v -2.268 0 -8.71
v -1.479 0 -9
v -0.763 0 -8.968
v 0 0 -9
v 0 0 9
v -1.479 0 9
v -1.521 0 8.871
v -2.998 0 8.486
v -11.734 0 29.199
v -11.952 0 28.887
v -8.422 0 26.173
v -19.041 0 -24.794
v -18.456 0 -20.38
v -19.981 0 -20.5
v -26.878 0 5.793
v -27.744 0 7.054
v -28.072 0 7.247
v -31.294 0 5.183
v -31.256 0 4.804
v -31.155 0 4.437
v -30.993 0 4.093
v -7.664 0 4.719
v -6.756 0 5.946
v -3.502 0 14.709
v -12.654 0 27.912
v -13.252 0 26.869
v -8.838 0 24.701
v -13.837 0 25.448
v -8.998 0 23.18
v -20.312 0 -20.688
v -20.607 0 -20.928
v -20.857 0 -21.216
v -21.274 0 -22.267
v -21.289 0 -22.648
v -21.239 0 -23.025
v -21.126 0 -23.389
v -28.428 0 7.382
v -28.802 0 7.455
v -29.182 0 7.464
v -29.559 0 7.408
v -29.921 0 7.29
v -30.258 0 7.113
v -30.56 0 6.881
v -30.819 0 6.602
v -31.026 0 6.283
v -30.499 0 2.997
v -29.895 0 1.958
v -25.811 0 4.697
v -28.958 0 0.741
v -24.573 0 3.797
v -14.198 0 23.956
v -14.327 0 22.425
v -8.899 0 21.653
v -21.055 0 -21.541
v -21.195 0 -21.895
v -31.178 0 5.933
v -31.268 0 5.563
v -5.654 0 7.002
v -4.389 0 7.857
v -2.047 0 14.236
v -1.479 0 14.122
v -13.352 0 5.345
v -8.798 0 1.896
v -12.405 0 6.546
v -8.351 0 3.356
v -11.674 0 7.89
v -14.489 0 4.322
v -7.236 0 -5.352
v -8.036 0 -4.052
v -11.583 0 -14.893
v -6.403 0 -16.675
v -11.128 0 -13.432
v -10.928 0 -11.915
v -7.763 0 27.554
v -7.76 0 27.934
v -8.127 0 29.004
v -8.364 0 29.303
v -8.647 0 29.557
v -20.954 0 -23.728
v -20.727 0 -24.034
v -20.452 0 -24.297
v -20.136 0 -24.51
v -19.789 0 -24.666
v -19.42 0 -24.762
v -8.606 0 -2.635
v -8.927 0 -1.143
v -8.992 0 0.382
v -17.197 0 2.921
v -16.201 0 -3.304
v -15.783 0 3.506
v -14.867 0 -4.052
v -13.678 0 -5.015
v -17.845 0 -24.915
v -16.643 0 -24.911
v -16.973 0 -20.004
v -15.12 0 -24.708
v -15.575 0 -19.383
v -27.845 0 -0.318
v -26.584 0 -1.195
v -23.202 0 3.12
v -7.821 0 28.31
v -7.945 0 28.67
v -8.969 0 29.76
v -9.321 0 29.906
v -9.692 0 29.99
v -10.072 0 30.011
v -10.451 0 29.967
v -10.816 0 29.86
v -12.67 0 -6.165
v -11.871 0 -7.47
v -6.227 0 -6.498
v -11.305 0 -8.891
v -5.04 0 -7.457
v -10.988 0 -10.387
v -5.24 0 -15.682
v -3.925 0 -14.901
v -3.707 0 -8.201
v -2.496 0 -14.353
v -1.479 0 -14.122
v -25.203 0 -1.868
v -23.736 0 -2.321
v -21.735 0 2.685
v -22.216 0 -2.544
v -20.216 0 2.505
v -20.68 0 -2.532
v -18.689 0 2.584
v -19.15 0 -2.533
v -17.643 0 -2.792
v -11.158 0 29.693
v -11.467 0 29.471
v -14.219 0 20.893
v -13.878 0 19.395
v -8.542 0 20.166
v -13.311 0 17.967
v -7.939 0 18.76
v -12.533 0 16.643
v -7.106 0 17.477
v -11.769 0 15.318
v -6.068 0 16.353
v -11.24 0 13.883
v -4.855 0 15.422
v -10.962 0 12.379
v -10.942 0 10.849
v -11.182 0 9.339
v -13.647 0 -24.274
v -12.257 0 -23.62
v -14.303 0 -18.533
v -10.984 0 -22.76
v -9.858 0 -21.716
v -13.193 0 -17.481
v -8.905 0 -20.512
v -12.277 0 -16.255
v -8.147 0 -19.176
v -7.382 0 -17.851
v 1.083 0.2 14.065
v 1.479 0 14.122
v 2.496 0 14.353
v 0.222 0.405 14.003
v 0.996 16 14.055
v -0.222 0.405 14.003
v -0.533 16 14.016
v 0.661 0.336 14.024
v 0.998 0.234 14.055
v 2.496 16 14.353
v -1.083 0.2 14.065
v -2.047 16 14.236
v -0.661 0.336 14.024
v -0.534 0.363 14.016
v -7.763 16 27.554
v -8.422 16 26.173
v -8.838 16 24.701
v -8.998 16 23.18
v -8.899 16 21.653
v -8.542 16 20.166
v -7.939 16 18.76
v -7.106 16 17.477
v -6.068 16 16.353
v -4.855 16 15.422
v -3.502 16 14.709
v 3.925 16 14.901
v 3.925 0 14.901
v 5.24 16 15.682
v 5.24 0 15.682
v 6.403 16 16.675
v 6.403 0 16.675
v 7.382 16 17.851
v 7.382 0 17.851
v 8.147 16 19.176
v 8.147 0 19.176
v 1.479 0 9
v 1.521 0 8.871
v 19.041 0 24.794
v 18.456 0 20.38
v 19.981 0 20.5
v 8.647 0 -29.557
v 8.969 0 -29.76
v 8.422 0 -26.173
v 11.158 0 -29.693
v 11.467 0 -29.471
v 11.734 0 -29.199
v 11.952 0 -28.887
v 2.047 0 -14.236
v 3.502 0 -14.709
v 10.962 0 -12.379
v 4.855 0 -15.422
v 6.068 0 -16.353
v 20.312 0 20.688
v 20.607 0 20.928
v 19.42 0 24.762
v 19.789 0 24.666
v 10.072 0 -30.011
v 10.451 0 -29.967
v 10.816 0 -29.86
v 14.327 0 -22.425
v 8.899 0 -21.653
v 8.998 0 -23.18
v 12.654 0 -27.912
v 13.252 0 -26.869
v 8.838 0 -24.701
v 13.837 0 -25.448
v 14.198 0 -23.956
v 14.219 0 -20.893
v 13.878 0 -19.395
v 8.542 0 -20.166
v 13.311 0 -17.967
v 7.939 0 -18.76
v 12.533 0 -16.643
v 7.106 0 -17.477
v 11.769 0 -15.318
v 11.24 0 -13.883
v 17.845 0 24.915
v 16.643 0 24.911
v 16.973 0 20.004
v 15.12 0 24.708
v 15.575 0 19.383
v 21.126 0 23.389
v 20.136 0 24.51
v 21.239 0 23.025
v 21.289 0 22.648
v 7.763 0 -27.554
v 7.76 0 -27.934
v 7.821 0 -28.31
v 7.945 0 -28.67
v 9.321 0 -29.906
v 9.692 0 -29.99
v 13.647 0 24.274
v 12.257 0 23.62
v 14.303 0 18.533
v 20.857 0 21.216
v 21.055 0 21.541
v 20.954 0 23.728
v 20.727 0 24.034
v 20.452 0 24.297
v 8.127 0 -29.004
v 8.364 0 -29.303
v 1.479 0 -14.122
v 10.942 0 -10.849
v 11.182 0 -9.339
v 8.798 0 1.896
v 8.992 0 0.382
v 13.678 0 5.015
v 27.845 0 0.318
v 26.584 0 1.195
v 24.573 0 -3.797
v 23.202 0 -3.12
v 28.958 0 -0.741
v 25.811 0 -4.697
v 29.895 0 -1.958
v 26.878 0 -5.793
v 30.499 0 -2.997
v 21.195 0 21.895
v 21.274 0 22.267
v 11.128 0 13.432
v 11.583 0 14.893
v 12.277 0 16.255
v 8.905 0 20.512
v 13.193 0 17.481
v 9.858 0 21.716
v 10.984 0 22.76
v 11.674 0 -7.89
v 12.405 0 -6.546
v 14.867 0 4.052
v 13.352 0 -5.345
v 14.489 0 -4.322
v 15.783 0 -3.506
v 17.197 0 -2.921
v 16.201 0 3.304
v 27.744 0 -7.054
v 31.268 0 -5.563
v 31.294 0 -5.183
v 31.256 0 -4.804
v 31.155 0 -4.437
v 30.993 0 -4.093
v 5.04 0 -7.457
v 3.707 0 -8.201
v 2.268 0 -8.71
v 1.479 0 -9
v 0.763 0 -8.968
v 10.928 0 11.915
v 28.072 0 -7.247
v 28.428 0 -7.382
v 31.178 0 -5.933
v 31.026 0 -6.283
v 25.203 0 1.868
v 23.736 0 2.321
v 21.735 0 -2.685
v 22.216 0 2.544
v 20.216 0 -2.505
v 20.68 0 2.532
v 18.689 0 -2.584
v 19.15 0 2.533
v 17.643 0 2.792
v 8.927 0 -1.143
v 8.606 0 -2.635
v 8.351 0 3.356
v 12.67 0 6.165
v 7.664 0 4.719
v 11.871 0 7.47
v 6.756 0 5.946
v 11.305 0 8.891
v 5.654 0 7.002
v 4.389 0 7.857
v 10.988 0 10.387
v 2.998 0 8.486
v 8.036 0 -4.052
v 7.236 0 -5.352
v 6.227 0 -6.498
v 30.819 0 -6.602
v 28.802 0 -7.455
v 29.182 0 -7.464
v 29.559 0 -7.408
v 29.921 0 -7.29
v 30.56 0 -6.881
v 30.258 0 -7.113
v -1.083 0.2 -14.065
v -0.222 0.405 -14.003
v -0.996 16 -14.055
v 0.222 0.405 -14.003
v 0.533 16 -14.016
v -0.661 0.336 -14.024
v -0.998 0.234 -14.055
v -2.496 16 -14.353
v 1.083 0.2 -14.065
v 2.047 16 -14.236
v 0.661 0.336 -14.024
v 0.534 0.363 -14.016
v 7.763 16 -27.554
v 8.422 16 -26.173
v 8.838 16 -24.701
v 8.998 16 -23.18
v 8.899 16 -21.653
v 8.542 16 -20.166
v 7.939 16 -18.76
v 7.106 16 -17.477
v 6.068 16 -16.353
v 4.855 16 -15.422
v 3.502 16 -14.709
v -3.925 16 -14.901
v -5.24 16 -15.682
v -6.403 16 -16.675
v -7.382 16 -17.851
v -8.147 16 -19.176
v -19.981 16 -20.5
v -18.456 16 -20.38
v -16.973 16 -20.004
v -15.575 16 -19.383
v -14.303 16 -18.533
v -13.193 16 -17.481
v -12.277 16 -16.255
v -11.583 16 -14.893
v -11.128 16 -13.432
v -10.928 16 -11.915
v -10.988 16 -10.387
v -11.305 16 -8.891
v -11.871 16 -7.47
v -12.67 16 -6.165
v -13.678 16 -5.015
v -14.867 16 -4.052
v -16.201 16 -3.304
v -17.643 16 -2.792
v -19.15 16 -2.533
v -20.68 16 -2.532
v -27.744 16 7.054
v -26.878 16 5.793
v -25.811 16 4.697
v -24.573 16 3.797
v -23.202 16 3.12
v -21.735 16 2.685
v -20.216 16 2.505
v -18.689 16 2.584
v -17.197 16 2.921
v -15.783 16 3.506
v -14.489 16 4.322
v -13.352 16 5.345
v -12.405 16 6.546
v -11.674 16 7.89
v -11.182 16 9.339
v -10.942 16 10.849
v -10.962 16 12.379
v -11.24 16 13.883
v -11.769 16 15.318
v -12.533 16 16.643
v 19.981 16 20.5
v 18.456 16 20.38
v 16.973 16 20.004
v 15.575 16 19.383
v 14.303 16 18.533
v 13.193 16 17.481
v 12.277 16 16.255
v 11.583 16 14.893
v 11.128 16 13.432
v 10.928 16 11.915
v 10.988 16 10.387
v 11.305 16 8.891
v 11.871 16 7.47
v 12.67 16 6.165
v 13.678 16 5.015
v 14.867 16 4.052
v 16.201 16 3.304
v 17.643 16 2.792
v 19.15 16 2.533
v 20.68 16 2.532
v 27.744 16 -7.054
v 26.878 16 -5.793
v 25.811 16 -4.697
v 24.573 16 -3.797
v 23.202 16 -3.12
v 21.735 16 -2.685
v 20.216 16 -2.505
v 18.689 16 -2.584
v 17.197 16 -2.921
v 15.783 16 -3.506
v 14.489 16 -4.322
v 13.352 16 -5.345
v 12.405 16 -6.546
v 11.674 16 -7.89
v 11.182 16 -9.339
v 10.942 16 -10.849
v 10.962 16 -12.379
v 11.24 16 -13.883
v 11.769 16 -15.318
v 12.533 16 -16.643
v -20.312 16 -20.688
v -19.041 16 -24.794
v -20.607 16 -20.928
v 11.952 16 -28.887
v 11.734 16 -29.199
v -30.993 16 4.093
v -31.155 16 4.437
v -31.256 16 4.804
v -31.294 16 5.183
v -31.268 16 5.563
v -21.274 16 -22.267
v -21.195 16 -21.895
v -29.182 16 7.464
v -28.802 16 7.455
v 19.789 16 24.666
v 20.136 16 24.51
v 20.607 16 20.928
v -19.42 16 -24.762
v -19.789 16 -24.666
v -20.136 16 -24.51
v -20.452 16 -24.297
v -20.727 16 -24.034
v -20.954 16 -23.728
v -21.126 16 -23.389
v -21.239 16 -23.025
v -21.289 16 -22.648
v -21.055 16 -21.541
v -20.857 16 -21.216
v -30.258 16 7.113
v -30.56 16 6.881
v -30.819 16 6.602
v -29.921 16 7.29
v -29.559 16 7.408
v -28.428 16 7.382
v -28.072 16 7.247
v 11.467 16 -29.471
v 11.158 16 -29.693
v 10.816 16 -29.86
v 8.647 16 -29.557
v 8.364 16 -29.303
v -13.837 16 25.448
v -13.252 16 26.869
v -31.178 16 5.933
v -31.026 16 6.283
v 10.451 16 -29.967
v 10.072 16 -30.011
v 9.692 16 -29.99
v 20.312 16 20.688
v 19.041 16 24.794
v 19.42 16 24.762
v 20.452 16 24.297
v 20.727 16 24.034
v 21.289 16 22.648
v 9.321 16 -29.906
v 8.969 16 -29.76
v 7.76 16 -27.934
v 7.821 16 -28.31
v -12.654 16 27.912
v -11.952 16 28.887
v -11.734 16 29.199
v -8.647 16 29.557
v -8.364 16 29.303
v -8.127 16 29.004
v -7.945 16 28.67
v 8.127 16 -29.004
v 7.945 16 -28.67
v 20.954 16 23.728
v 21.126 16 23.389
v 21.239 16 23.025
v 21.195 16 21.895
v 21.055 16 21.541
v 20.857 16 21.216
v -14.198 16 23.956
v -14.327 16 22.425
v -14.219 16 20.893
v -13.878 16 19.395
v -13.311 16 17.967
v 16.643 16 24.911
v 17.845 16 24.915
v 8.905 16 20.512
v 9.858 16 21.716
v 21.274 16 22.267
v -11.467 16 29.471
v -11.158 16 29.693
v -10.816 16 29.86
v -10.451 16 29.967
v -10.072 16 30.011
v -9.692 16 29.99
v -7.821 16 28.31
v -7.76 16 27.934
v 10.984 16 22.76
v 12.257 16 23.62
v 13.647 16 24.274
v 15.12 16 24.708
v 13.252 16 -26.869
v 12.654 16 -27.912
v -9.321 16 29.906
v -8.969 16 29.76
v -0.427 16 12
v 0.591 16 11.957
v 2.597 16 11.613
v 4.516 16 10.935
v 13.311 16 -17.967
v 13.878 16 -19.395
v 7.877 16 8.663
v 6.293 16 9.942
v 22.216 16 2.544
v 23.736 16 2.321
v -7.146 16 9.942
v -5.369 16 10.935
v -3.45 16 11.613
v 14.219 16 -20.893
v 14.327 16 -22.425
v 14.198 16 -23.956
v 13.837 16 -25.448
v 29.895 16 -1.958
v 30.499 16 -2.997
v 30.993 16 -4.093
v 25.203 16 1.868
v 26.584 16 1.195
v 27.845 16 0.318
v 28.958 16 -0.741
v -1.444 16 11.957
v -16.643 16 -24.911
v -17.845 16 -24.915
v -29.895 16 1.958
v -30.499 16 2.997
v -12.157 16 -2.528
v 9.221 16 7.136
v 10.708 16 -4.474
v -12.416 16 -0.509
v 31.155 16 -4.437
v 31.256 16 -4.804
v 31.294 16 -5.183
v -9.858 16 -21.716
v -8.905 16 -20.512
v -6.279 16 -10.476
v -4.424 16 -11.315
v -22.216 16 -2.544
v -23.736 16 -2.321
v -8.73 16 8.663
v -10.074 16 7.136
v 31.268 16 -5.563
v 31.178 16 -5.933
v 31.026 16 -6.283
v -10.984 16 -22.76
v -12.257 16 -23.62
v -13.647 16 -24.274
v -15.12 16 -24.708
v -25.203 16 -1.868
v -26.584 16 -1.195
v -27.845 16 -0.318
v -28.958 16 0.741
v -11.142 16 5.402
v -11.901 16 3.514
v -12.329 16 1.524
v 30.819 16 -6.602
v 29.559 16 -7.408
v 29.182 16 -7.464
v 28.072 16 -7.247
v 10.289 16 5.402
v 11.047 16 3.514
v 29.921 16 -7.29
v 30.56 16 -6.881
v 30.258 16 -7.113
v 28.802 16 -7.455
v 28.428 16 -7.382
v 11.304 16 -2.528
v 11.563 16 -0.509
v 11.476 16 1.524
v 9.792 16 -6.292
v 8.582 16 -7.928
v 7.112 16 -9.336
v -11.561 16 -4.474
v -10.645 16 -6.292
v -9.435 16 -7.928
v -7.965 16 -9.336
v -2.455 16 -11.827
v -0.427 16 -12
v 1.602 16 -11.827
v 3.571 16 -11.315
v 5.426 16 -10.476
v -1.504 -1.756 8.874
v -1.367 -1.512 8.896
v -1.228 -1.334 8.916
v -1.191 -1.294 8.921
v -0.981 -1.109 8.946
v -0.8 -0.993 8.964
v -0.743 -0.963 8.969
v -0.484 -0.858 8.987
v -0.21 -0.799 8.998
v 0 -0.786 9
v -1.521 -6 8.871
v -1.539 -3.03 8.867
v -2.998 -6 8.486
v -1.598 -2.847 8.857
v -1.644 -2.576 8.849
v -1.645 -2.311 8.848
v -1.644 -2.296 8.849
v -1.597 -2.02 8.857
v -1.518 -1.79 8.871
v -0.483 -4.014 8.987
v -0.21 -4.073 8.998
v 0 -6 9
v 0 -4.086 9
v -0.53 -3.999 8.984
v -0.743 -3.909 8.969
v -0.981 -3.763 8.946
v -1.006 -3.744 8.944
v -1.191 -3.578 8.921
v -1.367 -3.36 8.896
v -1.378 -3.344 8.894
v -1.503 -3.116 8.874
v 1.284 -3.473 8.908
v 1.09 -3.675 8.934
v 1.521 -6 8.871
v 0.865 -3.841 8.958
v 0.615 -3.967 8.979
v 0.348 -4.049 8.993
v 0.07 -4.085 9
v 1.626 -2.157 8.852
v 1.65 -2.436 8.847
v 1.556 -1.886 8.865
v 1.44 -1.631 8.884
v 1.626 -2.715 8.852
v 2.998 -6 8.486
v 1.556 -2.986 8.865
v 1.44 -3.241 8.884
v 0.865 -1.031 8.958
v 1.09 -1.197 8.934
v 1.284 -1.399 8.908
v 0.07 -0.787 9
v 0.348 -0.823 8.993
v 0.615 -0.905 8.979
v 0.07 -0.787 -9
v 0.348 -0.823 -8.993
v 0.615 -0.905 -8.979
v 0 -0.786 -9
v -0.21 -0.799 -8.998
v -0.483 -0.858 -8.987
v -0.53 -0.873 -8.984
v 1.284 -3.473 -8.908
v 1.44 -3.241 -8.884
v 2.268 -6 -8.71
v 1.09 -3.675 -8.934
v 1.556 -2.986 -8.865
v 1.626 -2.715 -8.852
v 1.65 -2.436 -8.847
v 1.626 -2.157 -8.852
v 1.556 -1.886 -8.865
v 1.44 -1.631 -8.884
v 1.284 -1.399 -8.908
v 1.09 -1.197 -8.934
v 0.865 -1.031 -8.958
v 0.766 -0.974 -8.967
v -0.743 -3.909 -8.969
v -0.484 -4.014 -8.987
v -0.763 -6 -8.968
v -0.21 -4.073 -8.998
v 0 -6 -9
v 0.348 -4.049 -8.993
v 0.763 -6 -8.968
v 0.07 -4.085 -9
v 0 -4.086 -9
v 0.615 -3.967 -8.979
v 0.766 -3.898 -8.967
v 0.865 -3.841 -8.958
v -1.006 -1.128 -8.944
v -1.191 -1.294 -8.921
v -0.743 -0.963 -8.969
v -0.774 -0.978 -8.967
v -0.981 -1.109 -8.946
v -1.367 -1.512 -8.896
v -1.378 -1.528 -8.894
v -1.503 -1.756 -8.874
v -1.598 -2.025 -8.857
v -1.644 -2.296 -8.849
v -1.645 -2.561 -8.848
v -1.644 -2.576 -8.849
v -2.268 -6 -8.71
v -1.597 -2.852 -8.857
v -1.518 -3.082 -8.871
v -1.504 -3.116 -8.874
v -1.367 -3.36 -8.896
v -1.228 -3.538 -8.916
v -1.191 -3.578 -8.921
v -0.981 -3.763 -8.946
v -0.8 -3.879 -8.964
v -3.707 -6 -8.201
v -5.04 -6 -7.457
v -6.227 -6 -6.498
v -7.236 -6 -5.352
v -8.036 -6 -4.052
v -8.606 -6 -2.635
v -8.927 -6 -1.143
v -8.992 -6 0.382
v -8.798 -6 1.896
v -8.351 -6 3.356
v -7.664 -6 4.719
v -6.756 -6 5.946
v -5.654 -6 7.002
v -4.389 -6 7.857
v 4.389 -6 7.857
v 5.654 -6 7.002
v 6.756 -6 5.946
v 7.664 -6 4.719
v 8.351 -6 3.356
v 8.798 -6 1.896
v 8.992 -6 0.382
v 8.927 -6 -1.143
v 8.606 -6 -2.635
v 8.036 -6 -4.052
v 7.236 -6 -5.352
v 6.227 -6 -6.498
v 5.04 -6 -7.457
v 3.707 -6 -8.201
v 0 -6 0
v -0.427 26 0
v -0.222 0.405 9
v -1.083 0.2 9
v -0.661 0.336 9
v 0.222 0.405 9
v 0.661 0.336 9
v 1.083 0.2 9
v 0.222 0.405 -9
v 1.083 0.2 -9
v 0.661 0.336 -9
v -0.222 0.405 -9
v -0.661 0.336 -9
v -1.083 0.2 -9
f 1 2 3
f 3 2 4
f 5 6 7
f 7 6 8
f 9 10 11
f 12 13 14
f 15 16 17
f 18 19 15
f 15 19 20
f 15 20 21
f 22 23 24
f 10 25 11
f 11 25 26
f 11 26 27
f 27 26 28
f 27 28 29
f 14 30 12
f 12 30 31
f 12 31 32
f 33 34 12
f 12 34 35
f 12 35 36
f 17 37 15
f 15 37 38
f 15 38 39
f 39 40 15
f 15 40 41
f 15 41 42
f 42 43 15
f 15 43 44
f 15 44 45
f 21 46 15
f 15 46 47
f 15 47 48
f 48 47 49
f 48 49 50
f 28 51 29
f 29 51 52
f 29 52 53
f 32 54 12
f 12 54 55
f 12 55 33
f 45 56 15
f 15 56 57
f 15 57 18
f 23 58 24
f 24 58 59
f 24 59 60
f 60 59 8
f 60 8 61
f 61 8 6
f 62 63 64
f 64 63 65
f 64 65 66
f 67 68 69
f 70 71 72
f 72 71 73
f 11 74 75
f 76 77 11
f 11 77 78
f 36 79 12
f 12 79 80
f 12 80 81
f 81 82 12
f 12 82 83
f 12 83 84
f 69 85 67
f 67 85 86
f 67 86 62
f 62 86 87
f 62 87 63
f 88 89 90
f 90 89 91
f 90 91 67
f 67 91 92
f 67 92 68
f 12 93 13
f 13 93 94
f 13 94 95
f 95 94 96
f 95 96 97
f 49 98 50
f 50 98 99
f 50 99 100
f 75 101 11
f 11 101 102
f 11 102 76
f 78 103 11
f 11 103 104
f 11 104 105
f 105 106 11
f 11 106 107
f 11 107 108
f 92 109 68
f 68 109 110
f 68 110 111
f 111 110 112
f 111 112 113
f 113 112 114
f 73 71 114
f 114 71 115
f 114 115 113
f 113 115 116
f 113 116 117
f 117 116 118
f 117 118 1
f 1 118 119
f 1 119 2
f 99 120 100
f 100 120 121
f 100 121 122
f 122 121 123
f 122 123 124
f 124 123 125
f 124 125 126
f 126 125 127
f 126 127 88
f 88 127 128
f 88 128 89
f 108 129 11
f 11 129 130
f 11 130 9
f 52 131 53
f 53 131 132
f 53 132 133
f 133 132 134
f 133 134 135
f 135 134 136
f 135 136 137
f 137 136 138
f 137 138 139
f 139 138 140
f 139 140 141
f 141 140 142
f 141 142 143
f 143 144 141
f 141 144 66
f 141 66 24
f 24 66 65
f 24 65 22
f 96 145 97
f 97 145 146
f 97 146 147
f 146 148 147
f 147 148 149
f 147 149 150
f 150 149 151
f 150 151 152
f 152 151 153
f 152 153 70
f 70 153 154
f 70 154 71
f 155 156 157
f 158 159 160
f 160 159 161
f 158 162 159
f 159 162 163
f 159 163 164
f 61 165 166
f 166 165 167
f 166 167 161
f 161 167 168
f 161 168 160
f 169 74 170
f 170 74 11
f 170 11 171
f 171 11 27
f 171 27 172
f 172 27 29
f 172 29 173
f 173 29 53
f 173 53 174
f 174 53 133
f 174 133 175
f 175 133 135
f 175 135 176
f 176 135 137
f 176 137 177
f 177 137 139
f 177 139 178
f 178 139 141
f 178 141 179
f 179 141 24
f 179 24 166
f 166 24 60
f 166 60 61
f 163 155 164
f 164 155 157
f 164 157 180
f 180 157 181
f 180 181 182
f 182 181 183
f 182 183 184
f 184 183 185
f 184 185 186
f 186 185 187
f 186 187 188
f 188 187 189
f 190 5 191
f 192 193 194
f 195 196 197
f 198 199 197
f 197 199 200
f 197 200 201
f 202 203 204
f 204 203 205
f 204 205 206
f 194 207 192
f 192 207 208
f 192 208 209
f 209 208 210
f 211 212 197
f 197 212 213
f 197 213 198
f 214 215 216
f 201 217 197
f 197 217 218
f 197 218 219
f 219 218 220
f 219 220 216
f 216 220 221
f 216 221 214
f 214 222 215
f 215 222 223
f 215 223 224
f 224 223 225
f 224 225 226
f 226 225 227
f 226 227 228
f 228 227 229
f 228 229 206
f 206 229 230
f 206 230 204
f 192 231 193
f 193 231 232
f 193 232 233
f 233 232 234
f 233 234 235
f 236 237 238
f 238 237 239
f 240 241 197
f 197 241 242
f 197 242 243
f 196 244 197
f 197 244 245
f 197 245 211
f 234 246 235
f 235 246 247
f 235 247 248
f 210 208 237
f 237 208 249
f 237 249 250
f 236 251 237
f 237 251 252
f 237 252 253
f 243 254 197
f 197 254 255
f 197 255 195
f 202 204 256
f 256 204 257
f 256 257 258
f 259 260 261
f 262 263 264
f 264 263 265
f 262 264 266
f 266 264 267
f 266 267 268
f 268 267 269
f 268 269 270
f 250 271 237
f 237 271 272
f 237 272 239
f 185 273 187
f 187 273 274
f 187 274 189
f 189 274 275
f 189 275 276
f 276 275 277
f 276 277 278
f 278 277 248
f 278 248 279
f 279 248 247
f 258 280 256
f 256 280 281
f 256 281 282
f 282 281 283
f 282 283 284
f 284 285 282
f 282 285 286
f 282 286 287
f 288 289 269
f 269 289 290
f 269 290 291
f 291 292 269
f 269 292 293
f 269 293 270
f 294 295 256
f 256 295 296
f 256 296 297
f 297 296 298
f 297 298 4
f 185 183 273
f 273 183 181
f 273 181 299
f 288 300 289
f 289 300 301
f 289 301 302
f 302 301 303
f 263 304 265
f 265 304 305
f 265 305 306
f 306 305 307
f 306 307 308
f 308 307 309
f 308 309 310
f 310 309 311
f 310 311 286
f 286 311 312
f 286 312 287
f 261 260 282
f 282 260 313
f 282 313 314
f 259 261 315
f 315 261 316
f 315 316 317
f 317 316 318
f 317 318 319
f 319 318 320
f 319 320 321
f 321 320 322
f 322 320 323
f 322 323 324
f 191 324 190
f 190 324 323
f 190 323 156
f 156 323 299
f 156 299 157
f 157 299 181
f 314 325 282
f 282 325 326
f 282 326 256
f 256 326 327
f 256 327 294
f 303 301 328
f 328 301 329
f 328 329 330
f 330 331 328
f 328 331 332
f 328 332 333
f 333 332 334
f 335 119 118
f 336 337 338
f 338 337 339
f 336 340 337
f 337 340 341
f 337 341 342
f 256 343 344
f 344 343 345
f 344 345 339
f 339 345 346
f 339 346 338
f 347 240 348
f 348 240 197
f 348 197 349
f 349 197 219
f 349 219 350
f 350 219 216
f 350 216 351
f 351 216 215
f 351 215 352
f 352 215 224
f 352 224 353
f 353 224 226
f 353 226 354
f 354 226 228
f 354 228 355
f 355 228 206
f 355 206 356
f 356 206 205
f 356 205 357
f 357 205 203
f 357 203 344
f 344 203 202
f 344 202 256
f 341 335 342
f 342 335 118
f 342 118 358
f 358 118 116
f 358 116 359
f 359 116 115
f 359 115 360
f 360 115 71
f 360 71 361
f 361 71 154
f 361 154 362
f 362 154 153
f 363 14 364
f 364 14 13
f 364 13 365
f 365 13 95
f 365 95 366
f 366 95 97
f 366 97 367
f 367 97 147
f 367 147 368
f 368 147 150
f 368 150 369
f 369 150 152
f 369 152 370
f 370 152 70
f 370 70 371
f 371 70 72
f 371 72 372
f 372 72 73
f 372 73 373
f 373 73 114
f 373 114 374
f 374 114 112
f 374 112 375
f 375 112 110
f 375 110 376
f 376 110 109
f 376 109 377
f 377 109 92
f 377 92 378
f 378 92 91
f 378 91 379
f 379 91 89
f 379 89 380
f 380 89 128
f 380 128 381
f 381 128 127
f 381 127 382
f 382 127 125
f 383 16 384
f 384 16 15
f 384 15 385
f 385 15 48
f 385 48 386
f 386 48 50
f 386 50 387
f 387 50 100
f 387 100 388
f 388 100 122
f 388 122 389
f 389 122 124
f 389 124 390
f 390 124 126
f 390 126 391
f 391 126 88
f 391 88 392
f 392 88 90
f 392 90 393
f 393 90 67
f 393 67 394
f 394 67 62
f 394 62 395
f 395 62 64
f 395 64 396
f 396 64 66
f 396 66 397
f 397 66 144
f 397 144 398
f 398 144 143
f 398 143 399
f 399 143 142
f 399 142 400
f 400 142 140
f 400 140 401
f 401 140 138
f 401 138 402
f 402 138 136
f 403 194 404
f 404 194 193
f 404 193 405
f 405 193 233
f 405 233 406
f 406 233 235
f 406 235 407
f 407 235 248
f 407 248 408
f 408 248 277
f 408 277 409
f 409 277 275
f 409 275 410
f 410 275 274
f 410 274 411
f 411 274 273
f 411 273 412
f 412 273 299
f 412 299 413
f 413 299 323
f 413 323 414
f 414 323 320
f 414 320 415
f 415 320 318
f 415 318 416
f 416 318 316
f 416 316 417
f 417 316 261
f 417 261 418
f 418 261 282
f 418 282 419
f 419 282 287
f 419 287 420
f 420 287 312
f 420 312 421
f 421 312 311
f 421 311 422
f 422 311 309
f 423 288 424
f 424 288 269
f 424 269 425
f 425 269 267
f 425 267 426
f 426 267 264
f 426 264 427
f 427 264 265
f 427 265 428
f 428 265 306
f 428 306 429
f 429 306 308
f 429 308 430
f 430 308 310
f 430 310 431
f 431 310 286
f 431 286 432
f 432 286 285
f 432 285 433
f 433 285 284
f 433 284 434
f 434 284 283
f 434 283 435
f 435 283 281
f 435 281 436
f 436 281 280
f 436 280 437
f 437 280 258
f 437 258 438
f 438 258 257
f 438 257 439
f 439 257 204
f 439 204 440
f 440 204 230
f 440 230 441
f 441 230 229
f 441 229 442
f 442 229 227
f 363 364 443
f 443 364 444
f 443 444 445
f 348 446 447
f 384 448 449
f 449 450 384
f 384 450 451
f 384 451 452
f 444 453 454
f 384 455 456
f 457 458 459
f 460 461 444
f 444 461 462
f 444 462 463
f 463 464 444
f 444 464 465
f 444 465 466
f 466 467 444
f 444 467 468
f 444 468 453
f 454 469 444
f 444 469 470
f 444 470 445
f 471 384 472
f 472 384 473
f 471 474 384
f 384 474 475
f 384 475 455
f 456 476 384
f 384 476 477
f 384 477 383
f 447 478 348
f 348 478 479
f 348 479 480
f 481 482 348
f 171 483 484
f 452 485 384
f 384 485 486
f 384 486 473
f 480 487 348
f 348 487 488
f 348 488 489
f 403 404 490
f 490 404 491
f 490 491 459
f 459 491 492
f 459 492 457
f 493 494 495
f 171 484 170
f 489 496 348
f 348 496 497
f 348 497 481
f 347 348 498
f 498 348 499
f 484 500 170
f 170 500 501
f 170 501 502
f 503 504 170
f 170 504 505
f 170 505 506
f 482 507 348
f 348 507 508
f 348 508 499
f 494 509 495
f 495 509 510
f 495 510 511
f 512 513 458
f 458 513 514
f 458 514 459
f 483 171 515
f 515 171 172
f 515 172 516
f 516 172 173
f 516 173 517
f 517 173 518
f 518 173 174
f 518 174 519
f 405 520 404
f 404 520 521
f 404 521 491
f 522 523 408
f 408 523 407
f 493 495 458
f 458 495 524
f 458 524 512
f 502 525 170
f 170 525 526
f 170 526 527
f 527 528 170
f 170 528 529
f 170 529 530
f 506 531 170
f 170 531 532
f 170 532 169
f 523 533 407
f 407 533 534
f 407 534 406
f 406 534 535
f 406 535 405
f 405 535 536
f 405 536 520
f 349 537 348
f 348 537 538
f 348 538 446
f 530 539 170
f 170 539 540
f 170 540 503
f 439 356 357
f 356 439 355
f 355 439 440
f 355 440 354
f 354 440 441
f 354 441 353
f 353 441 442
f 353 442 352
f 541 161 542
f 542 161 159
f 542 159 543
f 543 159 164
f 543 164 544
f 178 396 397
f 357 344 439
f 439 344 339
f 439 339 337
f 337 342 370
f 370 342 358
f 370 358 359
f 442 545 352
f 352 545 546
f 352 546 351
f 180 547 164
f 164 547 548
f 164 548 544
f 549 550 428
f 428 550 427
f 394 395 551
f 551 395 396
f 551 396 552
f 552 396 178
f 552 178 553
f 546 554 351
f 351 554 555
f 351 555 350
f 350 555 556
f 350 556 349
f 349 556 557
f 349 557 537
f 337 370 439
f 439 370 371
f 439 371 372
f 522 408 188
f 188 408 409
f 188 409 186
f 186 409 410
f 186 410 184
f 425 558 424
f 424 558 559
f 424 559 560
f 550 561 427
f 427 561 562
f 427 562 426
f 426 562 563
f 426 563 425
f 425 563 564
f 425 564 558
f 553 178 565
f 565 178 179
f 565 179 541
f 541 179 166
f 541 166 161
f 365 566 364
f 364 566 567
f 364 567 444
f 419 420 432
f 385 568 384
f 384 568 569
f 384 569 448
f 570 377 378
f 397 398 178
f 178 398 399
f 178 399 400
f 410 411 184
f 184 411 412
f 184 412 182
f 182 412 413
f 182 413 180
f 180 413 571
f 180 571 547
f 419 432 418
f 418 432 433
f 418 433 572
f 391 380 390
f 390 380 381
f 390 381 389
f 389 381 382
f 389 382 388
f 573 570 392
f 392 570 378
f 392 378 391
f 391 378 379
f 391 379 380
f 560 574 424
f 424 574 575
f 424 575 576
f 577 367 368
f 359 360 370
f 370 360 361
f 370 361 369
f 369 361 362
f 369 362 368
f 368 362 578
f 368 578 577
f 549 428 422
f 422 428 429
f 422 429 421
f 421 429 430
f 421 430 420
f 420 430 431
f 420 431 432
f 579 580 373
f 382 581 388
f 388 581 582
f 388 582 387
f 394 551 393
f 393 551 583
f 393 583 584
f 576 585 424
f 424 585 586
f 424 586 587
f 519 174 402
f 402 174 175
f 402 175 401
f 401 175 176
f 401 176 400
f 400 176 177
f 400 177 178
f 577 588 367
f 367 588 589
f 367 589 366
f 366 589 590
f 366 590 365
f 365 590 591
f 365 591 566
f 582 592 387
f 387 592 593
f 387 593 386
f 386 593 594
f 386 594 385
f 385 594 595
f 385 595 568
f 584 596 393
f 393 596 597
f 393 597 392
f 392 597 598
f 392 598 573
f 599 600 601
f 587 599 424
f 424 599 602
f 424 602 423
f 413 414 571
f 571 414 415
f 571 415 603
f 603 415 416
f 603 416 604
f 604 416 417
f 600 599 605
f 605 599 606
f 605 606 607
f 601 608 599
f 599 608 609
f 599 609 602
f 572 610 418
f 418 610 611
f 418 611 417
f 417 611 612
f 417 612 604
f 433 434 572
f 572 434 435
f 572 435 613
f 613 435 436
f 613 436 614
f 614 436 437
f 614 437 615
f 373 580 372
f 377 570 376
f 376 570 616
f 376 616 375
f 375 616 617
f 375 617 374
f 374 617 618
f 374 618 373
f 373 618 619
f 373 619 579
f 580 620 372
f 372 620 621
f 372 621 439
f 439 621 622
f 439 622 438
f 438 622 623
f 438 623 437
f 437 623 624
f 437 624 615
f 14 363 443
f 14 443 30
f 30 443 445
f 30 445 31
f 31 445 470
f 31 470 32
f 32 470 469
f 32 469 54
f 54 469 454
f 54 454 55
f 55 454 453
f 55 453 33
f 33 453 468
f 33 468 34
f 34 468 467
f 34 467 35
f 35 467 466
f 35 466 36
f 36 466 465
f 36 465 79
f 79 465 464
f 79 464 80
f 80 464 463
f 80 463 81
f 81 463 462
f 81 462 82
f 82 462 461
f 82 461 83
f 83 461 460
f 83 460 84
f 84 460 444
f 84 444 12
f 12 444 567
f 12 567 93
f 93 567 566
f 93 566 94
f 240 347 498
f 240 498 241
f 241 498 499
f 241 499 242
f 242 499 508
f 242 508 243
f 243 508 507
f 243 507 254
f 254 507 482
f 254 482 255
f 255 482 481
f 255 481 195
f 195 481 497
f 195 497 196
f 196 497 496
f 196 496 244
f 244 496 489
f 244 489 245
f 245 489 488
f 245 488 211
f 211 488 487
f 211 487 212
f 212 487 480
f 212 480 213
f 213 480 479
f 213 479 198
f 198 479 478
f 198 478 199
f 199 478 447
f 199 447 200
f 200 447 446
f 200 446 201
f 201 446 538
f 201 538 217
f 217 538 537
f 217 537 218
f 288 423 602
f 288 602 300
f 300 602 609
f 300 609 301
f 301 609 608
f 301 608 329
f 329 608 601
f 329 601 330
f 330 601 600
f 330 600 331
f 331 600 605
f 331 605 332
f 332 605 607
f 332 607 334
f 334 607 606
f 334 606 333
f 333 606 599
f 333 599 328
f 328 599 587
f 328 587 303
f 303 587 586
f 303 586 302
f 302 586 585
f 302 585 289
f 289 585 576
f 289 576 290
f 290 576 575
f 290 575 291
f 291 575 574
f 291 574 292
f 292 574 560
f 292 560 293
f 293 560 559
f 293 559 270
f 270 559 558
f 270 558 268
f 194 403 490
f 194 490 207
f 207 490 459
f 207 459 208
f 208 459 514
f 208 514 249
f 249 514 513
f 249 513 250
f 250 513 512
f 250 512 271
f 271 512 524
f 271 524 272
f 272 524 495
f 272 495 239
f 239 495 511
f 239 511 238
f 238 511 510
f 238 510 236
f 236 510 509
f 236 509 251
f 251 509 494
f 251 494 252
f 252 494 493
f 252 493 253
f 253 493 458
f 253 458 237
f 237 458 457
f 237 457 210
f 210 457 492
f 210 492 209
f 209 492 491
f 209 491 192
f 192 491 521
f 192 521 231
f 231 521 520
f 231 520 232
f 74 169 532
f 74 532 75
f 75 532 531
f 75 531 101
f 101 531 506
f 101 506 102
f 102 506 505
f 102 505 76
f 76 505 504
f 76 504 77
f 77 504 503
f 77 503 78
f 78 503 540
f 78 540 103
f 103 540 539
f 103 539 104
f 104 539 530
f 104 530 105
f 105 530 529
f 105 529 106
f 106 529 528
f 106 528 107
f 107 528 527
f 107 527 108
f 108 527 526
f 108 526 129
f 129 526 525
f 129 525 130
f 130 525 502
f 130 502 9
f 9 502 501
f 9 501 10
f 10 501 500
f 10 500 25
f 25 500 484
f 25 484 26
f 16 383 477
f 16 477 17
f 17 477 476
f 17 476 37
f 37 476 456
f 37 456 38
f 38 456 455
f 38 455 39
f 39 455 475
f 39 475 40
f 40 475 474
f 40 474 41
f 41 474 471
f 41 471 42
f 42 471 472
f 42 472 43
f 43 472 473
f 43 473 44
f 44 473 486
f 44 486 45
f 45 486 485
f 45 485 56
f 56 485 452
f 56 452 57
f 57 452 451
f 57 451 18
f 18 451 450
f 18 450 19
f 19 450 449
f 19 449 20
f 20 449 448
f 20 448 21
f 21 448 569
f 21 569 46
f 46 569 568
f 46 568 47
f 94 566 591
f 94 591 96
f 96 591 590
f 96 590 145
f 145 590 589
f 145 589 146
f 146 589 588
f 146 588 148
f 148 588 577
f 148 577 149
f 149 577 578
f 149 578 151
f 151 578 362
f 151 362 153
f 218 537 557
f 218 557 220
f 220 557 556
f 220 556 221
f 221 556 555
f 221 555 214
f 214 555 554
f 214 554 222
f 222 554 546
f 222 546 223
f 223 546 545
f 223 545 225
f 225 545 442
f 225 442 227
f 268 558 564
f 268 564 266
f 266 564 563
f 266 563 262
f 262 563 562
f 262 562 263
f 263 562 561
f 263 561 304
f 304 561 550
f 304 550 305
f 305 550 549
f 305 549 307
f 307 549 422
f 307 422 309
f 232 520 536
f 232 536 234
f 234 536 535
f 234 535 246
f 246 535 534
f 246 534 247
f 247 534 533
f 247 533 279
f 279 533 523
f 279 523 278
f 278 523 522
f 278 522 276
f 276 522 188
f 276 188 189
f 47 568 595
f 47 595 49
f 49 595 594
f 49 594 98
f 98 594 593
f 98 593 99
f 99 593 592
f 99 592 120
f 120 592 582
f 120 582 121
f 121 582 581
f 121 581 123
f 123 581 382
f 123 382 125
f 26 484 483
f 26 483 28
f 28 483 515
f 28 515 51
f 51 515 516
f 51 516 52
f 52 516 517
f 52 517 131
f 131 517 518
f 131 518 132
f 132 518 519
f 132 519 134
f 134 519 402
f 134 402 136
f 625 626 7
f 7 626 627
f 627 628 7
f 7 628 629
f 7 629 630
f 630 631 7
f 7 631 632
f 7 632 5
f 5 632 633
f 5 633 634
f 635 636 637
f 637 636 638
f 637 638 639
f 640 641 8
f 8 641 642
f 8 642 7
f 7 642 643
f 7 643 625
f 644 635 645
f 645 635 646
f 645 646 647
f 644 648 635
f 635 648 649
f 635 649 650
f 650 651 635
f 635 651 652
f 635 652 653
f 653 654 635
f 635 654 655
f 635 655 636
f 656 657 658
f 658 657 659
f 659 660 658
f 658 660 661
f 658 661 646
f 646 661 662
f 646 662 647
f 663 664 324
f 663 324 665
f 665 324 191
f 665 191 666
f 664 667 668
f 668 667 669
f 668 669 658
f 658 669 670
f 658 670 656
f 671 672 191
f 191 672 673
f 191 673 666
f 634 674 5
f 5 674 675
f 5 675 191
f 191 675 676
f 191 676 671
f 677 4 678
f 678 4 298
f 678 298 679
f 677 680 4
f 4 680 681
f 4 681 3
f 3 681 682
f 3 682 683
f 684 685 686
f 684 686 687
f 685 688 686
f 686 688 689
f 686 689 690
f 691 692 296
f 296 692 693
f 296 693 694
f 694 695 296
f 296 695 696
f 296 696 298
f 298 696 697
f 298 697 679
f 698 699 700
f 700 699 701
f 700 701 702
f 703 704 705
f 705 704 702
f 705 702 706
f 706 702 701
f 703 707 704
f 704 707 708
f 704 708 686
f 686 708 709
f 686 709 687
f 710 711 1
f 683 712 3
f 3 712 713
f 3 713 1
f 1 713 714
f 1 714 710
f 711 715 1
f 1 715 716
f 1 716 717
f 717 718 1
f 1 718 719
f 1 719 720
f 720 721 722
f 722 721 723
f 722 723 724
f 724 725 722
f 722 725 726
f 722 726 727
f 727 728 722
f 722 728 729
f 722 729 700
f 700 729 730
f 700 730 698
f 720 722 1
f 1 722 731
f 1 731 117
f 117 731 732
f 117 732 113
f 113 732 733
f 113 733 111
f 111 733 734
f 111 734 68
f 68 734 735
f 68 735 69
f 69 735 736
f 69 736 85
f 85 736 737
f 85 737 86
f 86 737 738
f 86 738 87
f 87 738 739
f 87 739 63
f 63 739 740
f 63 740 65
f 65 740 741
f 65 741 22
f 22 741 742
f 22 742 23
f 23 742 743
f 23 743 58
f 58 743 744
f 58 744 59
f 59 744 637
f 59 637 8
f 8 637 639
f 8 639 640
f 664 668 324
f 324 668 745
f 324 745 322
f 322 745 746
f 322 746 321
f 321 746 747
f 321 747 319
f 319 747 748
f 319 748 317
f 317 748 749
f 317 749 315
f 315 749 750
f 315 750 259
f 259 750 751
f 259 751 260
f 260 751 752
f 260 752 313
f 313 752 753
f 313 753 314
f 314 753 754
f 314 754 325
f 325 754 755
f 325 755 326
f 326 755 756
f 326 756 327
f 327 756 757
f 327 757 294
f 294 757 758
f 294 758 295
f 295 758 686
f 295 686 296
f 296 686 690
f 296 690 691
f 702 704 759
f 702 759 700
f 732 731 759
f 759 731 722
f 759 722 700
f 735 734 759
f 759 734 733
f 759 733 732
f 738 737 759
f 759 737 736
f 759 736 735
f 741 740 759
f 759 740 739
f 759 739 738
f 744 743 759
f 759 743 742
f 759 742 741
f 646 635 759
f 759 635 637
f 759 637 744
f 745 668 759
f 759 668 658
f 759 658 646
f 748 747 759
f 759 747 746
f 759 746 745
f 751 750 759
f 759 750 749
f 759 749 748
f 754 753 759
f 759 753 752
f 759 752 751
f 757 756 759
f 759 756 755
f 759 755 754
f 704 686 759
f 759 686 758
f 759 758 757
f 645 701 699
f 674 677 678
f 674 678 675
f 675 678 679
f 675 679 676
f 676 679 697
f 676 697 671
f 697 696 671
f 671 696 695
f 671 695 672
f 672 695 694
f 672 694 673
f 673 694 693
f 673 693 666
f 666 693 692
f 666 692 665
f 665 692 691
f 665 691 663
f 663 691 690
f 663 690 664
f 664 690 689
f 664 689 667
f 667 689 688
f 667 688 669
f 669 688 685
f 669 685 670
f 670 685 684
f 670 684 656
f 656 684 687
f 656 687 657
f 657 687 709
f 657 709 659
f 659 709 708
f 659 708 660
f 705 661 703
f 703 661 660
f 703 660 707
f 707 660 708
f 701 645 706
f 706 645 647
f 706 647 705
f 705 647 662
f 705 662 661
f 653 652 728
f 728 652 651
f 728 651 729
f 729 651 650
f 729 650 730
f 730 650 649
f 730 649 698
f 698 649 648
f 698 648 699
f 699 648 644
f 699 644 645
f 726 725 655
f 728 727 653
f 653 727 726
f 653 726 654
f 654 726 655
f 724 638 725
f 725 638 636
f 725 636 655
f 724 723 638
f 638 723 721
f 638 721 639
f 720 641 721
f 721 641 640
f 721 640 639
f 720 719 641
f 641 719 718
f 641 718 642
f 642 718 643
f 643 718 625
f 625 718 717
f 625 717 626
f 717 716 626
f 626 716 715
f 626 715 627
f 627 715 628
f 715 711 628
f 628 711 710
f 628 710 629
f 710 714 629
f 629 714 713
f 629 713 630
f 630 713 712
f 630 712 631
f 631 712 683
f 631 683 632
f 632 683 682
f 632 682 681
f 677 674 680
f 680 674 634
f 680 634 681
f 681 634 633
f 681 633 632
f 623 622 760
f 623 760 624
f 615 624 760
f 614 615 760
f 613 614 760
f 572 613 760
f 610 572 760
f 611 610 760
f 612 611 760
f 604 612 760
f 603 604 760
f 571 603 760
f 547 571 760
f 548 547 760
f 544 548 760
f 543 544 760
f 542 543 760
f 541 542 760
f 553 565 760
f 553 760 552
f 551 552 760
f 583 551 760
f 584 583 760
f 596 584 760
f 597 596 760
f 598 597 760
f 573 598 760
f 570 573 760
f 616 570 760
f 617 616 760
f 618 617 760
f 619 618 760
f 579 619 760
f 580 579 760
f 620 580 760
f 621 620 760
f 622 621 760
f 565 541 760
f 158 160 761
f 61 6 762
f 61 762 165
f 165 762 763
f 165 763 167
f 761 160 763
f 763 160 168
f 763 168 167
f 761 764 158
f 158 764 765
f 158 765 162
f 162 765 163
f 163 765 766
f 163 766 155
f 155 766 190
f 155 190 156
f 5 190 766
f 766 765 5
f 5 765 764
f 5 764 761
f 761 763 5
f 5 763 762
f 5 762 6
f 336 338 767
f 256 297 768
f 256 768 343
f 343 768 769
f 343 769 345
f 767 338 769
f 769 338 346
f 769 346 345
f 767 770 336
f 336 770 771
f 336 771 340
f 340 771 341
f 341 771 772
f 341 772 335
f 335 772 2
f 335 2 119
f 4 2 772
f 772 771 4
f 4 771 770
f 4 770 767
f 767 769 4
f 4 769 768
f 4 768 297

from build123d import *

# Parameters (mm, degrees)
BOSS_EXTRUDE1_DEPTH     = 16
BOSS_EXTRUDE2_START     = -16
BOSS_EXTRUDE2_DEPTH     = 16
FILLET1_R               = 10
SKETCH3_R               = 9
BOSS_EXTRUDE3_DEPTH     = 6
CUT_EXTRUDE1_DEPTH      = 47.217444076
CUT_EXTRUDE1_DEPTH_BACK = 47.217444076
SKETCH5_R               = 1.65
SKETCH10_R              = 2.85
CUT_EXTRUDE4_DEPTH      = 57.367261237


with BuildPart() as part:
    # Sketch1 → Boss-Extrude1 (new body)
    with BuildSketch(Plane(origin=(0, 0, 0), x_dir=(1, 0, 0), z_dir=(0, 1, 0))):
        with BuildLine():
            ThreePointArc((-22.806656603, 2.975972883), (-23, 0), (-22.806656603, -2.975972883))
            ThreePointArc((-22.806656603, -2.975972883), (-12.124355653, -7), (-13.980596419, -18.263157552))
            ThreePointArc((-13.980596419, -18.263157552), (-11.5, -19.918584287), (-8.826060184, -21.239130435))
            ThreePointArc((-8.826060184, -21.239130435), (0, -14), (8.826060184, -21.239130435))
            ThreePointArc((8.826060184, -21.239130435), (11.5, -19.918584287), (13.980596419, -18.263157552))
            ThreePointArc((13.980596419, -18.263157552), (12.124355653, -7), (22.806656603, -2.975972883))
            ThreePointArc((22.806656603, -2.975972883), (23, 0), (22.806656603, 2.975972883))
            ThreePointArc((22.806656603, 2.975972883), (12.124355653, 7), (13.980596419, 18.263157552))
            ThreePointArc((13.980596419, 18.263157552), (11.5, 19.918584287), (8.826060184, 21.239130435))
            ThreePointArc((8.826060184, 21.239130435), (0, 14), (-8.826060184, 21.239130435))
            ThreePointArc((-8.826060184, 21.239130435), (-11.5, 19.918584287), (-13.980596419, 18.263157552))
            ThreePointArc((-13.980596419, 18.263157552), (-12.124355653, 7), (-22.806656603, 2.975972883))
        make_face()
    extrude(amount=BOSS_EXTRUDE1_DEPTH)

    # Sketch2 → Boss-Extrude2 (add)
    with BuildSketch(Plane(origin=(0, 16, 0), x_dir=(1, 0, 0), z_dir=(0, 1, 0)).offset(BOSS_EXTRUDE2_START)):
        with BuildLine():
            ThreePointArc((-13.980596419, 18.263157552), (-16.774955839, 19.933125173), (-19.980596419, 20.499786358))
            ThreePointArc((-19.980596419, 20.499786358), (-21.238909345, 23.025125967), (-19.040914816, 24.794168535))
            ThreePointArc((-19.040914816, 24.794168535), (-13.4912909, 24.287233332), (-8.826060184, 21.239130435))
            ThreePointArc((-8.826060184, 21.239130435), (-11.5, 19.918584287), (-13.980596419, 18.263157552))
        make_face()
        with BuildLine():
            ThreePointArc((13.980596419, 18.263157552), (11.5, 19.918584287), (8.826060184, 21.239130435))
            ThreePointArc((8.826060184, 21.239130435), (8.875114857, 24.494100491), (7.763037549, 27.553597261))
            ThreePointArc((7.763037549, 27.553597261), (9.32088934, 29.905998025), (11.951922409, 28.88700021))
            ThreePointArc((11.951922409, 28.88700021), (14.287715603, 23.827417316), (13.980596419, 18.263157552))
        make_face()
        with BuildLine():
            ThreePointArc((22.806656603, -2.975972883), (23, 0), (22.806656603, 2.975972883))
            ThreePointArc((22.806656603, 2.975972883), (25.650070696, 4.560975318), (27.743633968, 7.053810902))
            ThreePointArc((27.743633968, 7.053810902), (30.559798685, 6.880872058), (30.992837225, 4.092831674))
            ThreePointArc((30.992837225, 4.092831674), (27.779006503, -0.459816017), (22.806656603, -2.975972883))
        make_face()
        with BuildLine():
            ThreePointArc((8.826060184, -21.239130435), (11.5, -19.918584287), (13.980596419, -18.263157552))
            ThreePointArc((13.980596419, -18.263157552), (16.774955839, -19.933125173), (19.980596419, -20.499786358))
            ThreePointArc((19.980596419, -20.499786358), (21.238909345, -23.025125967), (19.040914816, -24.794168535))
            ThreePointArc((19.040914816, -24.794168535), (13.4912909, -24.287233332), (8.826060184, -21.239130435))
        make_face()
        with BuildLine():
            ThreePointArc((-13.980596419, -18.263157552), (-11.5, -19.918584287), (-8.826060184, -21.239130435))
            ThreePointArc((-8.826060184, -21.239130435), (-8.875114857, -24.494100491), (-7.763037549, -27.553597261))
            ThreePointArc((-7.763037549, -27.553597261), (-9.32088934, -29.905998025), (-11.951922409, -28.88700021))
            ThreePointArc((-11.951922409, -28.88700021), (-14.287715603, -23.827417316), (-13.980596419, -18.263157552))
        make_face()
        with BuildLine():
            ThreePointArc((-22.806656603, 2.975972883), (-23, 0), (-22.806656603, -2.975972883))
            ThreePointArc((-22.806656603, -2.975972883), (-25.650070696, -4.560975318), (-27.743633968, -7.053810902))
            ThreePointArc((-27.743633968, -7.053810902), (-30.559798685, -6.880872058), (-30.992837225, -4.092831674))
            ThreePointArc((-30.992837225, -4.092831674), (-27.779006503, 0.459816017), (-22.806656603, 2.975972883))
        make_face()
    extrude(amount=BOSS_EXTRUDE2_DEPTH)

    # Fillet1
    fillet1_edges = [part.edges().sort_by_distance(p)[0] for p in [
        (13.980596419, 8, -18.263157552),
        (22.806656603, 8, 2.975972883),
        (8.826060184, 8, 21.239130435),
        (-13.980596419, 8, 18.263157552),
        (-22.806656603, 8, -2.975972883),
        (-8.826060184, 8, -21.239130435),
    ]]
    fillet(fillet1_edges, radius=FILLET1_R)

    # Sketch3 → Boss-Extrude3 (add)
    with BuildSketch(Plane.XZ):
        with Locations(Location((0, 0, 0), (0, 0, 90))):
            Circle(SKETCH3_R)
    extrude(amount=BOSS_EXTRUDE3_DEPTH)

    # Sketch5 → Cut-Extrude1 (cut, two sides: drawn at the far end of the back side and taken through both)
    with BuildSketch(Plane.XY.offset(-CUT_EXTRUDE1_DEPTH_BACK)):
        with Locations((0, -2.436)):
            Circle(SKETCH5_R)
    extrude(amount=CUT_EXTRUDE1_DEPTH + CUT_EXTRUDE1_DEPTH_BACK, mode=Mode.SUBTRACT)

    # Sketch6 → Revolve1 (revolve)
    with BuildSketch(Plane.XY, mode=Mode.PRIVATE) as revolve1_sk:
        Polygon((-0.426503876, 16), (-0.426503876, 26), (11.573496124, 16), align=None)
    revolve(revolve1_sk.sketch.rotate(Axis((-0.426503876, 16, 0), (0, 1, 0)), 90), axis=Axis((-0.426503876, 16, 0), (0, 1, 0)))

    # Sketch10 → Cut-Extrude4 (cut, through all)
    with BuildSketch(Plane.XY.offset(9)):
        with Locations((0, -2.436)):
            Circle(SKETCH10_R)
    cut_extrude4 = extrude(amount=CUT_EXTRUDE4_DEPTH, mode=Mode.SUBTRACT)

    # Mirror1: Cut-Extrude4 across plane
    add(cut_extrude4.mirror(Plane.XY), mode=Mode.SUBTRACT)


solid = part.part
